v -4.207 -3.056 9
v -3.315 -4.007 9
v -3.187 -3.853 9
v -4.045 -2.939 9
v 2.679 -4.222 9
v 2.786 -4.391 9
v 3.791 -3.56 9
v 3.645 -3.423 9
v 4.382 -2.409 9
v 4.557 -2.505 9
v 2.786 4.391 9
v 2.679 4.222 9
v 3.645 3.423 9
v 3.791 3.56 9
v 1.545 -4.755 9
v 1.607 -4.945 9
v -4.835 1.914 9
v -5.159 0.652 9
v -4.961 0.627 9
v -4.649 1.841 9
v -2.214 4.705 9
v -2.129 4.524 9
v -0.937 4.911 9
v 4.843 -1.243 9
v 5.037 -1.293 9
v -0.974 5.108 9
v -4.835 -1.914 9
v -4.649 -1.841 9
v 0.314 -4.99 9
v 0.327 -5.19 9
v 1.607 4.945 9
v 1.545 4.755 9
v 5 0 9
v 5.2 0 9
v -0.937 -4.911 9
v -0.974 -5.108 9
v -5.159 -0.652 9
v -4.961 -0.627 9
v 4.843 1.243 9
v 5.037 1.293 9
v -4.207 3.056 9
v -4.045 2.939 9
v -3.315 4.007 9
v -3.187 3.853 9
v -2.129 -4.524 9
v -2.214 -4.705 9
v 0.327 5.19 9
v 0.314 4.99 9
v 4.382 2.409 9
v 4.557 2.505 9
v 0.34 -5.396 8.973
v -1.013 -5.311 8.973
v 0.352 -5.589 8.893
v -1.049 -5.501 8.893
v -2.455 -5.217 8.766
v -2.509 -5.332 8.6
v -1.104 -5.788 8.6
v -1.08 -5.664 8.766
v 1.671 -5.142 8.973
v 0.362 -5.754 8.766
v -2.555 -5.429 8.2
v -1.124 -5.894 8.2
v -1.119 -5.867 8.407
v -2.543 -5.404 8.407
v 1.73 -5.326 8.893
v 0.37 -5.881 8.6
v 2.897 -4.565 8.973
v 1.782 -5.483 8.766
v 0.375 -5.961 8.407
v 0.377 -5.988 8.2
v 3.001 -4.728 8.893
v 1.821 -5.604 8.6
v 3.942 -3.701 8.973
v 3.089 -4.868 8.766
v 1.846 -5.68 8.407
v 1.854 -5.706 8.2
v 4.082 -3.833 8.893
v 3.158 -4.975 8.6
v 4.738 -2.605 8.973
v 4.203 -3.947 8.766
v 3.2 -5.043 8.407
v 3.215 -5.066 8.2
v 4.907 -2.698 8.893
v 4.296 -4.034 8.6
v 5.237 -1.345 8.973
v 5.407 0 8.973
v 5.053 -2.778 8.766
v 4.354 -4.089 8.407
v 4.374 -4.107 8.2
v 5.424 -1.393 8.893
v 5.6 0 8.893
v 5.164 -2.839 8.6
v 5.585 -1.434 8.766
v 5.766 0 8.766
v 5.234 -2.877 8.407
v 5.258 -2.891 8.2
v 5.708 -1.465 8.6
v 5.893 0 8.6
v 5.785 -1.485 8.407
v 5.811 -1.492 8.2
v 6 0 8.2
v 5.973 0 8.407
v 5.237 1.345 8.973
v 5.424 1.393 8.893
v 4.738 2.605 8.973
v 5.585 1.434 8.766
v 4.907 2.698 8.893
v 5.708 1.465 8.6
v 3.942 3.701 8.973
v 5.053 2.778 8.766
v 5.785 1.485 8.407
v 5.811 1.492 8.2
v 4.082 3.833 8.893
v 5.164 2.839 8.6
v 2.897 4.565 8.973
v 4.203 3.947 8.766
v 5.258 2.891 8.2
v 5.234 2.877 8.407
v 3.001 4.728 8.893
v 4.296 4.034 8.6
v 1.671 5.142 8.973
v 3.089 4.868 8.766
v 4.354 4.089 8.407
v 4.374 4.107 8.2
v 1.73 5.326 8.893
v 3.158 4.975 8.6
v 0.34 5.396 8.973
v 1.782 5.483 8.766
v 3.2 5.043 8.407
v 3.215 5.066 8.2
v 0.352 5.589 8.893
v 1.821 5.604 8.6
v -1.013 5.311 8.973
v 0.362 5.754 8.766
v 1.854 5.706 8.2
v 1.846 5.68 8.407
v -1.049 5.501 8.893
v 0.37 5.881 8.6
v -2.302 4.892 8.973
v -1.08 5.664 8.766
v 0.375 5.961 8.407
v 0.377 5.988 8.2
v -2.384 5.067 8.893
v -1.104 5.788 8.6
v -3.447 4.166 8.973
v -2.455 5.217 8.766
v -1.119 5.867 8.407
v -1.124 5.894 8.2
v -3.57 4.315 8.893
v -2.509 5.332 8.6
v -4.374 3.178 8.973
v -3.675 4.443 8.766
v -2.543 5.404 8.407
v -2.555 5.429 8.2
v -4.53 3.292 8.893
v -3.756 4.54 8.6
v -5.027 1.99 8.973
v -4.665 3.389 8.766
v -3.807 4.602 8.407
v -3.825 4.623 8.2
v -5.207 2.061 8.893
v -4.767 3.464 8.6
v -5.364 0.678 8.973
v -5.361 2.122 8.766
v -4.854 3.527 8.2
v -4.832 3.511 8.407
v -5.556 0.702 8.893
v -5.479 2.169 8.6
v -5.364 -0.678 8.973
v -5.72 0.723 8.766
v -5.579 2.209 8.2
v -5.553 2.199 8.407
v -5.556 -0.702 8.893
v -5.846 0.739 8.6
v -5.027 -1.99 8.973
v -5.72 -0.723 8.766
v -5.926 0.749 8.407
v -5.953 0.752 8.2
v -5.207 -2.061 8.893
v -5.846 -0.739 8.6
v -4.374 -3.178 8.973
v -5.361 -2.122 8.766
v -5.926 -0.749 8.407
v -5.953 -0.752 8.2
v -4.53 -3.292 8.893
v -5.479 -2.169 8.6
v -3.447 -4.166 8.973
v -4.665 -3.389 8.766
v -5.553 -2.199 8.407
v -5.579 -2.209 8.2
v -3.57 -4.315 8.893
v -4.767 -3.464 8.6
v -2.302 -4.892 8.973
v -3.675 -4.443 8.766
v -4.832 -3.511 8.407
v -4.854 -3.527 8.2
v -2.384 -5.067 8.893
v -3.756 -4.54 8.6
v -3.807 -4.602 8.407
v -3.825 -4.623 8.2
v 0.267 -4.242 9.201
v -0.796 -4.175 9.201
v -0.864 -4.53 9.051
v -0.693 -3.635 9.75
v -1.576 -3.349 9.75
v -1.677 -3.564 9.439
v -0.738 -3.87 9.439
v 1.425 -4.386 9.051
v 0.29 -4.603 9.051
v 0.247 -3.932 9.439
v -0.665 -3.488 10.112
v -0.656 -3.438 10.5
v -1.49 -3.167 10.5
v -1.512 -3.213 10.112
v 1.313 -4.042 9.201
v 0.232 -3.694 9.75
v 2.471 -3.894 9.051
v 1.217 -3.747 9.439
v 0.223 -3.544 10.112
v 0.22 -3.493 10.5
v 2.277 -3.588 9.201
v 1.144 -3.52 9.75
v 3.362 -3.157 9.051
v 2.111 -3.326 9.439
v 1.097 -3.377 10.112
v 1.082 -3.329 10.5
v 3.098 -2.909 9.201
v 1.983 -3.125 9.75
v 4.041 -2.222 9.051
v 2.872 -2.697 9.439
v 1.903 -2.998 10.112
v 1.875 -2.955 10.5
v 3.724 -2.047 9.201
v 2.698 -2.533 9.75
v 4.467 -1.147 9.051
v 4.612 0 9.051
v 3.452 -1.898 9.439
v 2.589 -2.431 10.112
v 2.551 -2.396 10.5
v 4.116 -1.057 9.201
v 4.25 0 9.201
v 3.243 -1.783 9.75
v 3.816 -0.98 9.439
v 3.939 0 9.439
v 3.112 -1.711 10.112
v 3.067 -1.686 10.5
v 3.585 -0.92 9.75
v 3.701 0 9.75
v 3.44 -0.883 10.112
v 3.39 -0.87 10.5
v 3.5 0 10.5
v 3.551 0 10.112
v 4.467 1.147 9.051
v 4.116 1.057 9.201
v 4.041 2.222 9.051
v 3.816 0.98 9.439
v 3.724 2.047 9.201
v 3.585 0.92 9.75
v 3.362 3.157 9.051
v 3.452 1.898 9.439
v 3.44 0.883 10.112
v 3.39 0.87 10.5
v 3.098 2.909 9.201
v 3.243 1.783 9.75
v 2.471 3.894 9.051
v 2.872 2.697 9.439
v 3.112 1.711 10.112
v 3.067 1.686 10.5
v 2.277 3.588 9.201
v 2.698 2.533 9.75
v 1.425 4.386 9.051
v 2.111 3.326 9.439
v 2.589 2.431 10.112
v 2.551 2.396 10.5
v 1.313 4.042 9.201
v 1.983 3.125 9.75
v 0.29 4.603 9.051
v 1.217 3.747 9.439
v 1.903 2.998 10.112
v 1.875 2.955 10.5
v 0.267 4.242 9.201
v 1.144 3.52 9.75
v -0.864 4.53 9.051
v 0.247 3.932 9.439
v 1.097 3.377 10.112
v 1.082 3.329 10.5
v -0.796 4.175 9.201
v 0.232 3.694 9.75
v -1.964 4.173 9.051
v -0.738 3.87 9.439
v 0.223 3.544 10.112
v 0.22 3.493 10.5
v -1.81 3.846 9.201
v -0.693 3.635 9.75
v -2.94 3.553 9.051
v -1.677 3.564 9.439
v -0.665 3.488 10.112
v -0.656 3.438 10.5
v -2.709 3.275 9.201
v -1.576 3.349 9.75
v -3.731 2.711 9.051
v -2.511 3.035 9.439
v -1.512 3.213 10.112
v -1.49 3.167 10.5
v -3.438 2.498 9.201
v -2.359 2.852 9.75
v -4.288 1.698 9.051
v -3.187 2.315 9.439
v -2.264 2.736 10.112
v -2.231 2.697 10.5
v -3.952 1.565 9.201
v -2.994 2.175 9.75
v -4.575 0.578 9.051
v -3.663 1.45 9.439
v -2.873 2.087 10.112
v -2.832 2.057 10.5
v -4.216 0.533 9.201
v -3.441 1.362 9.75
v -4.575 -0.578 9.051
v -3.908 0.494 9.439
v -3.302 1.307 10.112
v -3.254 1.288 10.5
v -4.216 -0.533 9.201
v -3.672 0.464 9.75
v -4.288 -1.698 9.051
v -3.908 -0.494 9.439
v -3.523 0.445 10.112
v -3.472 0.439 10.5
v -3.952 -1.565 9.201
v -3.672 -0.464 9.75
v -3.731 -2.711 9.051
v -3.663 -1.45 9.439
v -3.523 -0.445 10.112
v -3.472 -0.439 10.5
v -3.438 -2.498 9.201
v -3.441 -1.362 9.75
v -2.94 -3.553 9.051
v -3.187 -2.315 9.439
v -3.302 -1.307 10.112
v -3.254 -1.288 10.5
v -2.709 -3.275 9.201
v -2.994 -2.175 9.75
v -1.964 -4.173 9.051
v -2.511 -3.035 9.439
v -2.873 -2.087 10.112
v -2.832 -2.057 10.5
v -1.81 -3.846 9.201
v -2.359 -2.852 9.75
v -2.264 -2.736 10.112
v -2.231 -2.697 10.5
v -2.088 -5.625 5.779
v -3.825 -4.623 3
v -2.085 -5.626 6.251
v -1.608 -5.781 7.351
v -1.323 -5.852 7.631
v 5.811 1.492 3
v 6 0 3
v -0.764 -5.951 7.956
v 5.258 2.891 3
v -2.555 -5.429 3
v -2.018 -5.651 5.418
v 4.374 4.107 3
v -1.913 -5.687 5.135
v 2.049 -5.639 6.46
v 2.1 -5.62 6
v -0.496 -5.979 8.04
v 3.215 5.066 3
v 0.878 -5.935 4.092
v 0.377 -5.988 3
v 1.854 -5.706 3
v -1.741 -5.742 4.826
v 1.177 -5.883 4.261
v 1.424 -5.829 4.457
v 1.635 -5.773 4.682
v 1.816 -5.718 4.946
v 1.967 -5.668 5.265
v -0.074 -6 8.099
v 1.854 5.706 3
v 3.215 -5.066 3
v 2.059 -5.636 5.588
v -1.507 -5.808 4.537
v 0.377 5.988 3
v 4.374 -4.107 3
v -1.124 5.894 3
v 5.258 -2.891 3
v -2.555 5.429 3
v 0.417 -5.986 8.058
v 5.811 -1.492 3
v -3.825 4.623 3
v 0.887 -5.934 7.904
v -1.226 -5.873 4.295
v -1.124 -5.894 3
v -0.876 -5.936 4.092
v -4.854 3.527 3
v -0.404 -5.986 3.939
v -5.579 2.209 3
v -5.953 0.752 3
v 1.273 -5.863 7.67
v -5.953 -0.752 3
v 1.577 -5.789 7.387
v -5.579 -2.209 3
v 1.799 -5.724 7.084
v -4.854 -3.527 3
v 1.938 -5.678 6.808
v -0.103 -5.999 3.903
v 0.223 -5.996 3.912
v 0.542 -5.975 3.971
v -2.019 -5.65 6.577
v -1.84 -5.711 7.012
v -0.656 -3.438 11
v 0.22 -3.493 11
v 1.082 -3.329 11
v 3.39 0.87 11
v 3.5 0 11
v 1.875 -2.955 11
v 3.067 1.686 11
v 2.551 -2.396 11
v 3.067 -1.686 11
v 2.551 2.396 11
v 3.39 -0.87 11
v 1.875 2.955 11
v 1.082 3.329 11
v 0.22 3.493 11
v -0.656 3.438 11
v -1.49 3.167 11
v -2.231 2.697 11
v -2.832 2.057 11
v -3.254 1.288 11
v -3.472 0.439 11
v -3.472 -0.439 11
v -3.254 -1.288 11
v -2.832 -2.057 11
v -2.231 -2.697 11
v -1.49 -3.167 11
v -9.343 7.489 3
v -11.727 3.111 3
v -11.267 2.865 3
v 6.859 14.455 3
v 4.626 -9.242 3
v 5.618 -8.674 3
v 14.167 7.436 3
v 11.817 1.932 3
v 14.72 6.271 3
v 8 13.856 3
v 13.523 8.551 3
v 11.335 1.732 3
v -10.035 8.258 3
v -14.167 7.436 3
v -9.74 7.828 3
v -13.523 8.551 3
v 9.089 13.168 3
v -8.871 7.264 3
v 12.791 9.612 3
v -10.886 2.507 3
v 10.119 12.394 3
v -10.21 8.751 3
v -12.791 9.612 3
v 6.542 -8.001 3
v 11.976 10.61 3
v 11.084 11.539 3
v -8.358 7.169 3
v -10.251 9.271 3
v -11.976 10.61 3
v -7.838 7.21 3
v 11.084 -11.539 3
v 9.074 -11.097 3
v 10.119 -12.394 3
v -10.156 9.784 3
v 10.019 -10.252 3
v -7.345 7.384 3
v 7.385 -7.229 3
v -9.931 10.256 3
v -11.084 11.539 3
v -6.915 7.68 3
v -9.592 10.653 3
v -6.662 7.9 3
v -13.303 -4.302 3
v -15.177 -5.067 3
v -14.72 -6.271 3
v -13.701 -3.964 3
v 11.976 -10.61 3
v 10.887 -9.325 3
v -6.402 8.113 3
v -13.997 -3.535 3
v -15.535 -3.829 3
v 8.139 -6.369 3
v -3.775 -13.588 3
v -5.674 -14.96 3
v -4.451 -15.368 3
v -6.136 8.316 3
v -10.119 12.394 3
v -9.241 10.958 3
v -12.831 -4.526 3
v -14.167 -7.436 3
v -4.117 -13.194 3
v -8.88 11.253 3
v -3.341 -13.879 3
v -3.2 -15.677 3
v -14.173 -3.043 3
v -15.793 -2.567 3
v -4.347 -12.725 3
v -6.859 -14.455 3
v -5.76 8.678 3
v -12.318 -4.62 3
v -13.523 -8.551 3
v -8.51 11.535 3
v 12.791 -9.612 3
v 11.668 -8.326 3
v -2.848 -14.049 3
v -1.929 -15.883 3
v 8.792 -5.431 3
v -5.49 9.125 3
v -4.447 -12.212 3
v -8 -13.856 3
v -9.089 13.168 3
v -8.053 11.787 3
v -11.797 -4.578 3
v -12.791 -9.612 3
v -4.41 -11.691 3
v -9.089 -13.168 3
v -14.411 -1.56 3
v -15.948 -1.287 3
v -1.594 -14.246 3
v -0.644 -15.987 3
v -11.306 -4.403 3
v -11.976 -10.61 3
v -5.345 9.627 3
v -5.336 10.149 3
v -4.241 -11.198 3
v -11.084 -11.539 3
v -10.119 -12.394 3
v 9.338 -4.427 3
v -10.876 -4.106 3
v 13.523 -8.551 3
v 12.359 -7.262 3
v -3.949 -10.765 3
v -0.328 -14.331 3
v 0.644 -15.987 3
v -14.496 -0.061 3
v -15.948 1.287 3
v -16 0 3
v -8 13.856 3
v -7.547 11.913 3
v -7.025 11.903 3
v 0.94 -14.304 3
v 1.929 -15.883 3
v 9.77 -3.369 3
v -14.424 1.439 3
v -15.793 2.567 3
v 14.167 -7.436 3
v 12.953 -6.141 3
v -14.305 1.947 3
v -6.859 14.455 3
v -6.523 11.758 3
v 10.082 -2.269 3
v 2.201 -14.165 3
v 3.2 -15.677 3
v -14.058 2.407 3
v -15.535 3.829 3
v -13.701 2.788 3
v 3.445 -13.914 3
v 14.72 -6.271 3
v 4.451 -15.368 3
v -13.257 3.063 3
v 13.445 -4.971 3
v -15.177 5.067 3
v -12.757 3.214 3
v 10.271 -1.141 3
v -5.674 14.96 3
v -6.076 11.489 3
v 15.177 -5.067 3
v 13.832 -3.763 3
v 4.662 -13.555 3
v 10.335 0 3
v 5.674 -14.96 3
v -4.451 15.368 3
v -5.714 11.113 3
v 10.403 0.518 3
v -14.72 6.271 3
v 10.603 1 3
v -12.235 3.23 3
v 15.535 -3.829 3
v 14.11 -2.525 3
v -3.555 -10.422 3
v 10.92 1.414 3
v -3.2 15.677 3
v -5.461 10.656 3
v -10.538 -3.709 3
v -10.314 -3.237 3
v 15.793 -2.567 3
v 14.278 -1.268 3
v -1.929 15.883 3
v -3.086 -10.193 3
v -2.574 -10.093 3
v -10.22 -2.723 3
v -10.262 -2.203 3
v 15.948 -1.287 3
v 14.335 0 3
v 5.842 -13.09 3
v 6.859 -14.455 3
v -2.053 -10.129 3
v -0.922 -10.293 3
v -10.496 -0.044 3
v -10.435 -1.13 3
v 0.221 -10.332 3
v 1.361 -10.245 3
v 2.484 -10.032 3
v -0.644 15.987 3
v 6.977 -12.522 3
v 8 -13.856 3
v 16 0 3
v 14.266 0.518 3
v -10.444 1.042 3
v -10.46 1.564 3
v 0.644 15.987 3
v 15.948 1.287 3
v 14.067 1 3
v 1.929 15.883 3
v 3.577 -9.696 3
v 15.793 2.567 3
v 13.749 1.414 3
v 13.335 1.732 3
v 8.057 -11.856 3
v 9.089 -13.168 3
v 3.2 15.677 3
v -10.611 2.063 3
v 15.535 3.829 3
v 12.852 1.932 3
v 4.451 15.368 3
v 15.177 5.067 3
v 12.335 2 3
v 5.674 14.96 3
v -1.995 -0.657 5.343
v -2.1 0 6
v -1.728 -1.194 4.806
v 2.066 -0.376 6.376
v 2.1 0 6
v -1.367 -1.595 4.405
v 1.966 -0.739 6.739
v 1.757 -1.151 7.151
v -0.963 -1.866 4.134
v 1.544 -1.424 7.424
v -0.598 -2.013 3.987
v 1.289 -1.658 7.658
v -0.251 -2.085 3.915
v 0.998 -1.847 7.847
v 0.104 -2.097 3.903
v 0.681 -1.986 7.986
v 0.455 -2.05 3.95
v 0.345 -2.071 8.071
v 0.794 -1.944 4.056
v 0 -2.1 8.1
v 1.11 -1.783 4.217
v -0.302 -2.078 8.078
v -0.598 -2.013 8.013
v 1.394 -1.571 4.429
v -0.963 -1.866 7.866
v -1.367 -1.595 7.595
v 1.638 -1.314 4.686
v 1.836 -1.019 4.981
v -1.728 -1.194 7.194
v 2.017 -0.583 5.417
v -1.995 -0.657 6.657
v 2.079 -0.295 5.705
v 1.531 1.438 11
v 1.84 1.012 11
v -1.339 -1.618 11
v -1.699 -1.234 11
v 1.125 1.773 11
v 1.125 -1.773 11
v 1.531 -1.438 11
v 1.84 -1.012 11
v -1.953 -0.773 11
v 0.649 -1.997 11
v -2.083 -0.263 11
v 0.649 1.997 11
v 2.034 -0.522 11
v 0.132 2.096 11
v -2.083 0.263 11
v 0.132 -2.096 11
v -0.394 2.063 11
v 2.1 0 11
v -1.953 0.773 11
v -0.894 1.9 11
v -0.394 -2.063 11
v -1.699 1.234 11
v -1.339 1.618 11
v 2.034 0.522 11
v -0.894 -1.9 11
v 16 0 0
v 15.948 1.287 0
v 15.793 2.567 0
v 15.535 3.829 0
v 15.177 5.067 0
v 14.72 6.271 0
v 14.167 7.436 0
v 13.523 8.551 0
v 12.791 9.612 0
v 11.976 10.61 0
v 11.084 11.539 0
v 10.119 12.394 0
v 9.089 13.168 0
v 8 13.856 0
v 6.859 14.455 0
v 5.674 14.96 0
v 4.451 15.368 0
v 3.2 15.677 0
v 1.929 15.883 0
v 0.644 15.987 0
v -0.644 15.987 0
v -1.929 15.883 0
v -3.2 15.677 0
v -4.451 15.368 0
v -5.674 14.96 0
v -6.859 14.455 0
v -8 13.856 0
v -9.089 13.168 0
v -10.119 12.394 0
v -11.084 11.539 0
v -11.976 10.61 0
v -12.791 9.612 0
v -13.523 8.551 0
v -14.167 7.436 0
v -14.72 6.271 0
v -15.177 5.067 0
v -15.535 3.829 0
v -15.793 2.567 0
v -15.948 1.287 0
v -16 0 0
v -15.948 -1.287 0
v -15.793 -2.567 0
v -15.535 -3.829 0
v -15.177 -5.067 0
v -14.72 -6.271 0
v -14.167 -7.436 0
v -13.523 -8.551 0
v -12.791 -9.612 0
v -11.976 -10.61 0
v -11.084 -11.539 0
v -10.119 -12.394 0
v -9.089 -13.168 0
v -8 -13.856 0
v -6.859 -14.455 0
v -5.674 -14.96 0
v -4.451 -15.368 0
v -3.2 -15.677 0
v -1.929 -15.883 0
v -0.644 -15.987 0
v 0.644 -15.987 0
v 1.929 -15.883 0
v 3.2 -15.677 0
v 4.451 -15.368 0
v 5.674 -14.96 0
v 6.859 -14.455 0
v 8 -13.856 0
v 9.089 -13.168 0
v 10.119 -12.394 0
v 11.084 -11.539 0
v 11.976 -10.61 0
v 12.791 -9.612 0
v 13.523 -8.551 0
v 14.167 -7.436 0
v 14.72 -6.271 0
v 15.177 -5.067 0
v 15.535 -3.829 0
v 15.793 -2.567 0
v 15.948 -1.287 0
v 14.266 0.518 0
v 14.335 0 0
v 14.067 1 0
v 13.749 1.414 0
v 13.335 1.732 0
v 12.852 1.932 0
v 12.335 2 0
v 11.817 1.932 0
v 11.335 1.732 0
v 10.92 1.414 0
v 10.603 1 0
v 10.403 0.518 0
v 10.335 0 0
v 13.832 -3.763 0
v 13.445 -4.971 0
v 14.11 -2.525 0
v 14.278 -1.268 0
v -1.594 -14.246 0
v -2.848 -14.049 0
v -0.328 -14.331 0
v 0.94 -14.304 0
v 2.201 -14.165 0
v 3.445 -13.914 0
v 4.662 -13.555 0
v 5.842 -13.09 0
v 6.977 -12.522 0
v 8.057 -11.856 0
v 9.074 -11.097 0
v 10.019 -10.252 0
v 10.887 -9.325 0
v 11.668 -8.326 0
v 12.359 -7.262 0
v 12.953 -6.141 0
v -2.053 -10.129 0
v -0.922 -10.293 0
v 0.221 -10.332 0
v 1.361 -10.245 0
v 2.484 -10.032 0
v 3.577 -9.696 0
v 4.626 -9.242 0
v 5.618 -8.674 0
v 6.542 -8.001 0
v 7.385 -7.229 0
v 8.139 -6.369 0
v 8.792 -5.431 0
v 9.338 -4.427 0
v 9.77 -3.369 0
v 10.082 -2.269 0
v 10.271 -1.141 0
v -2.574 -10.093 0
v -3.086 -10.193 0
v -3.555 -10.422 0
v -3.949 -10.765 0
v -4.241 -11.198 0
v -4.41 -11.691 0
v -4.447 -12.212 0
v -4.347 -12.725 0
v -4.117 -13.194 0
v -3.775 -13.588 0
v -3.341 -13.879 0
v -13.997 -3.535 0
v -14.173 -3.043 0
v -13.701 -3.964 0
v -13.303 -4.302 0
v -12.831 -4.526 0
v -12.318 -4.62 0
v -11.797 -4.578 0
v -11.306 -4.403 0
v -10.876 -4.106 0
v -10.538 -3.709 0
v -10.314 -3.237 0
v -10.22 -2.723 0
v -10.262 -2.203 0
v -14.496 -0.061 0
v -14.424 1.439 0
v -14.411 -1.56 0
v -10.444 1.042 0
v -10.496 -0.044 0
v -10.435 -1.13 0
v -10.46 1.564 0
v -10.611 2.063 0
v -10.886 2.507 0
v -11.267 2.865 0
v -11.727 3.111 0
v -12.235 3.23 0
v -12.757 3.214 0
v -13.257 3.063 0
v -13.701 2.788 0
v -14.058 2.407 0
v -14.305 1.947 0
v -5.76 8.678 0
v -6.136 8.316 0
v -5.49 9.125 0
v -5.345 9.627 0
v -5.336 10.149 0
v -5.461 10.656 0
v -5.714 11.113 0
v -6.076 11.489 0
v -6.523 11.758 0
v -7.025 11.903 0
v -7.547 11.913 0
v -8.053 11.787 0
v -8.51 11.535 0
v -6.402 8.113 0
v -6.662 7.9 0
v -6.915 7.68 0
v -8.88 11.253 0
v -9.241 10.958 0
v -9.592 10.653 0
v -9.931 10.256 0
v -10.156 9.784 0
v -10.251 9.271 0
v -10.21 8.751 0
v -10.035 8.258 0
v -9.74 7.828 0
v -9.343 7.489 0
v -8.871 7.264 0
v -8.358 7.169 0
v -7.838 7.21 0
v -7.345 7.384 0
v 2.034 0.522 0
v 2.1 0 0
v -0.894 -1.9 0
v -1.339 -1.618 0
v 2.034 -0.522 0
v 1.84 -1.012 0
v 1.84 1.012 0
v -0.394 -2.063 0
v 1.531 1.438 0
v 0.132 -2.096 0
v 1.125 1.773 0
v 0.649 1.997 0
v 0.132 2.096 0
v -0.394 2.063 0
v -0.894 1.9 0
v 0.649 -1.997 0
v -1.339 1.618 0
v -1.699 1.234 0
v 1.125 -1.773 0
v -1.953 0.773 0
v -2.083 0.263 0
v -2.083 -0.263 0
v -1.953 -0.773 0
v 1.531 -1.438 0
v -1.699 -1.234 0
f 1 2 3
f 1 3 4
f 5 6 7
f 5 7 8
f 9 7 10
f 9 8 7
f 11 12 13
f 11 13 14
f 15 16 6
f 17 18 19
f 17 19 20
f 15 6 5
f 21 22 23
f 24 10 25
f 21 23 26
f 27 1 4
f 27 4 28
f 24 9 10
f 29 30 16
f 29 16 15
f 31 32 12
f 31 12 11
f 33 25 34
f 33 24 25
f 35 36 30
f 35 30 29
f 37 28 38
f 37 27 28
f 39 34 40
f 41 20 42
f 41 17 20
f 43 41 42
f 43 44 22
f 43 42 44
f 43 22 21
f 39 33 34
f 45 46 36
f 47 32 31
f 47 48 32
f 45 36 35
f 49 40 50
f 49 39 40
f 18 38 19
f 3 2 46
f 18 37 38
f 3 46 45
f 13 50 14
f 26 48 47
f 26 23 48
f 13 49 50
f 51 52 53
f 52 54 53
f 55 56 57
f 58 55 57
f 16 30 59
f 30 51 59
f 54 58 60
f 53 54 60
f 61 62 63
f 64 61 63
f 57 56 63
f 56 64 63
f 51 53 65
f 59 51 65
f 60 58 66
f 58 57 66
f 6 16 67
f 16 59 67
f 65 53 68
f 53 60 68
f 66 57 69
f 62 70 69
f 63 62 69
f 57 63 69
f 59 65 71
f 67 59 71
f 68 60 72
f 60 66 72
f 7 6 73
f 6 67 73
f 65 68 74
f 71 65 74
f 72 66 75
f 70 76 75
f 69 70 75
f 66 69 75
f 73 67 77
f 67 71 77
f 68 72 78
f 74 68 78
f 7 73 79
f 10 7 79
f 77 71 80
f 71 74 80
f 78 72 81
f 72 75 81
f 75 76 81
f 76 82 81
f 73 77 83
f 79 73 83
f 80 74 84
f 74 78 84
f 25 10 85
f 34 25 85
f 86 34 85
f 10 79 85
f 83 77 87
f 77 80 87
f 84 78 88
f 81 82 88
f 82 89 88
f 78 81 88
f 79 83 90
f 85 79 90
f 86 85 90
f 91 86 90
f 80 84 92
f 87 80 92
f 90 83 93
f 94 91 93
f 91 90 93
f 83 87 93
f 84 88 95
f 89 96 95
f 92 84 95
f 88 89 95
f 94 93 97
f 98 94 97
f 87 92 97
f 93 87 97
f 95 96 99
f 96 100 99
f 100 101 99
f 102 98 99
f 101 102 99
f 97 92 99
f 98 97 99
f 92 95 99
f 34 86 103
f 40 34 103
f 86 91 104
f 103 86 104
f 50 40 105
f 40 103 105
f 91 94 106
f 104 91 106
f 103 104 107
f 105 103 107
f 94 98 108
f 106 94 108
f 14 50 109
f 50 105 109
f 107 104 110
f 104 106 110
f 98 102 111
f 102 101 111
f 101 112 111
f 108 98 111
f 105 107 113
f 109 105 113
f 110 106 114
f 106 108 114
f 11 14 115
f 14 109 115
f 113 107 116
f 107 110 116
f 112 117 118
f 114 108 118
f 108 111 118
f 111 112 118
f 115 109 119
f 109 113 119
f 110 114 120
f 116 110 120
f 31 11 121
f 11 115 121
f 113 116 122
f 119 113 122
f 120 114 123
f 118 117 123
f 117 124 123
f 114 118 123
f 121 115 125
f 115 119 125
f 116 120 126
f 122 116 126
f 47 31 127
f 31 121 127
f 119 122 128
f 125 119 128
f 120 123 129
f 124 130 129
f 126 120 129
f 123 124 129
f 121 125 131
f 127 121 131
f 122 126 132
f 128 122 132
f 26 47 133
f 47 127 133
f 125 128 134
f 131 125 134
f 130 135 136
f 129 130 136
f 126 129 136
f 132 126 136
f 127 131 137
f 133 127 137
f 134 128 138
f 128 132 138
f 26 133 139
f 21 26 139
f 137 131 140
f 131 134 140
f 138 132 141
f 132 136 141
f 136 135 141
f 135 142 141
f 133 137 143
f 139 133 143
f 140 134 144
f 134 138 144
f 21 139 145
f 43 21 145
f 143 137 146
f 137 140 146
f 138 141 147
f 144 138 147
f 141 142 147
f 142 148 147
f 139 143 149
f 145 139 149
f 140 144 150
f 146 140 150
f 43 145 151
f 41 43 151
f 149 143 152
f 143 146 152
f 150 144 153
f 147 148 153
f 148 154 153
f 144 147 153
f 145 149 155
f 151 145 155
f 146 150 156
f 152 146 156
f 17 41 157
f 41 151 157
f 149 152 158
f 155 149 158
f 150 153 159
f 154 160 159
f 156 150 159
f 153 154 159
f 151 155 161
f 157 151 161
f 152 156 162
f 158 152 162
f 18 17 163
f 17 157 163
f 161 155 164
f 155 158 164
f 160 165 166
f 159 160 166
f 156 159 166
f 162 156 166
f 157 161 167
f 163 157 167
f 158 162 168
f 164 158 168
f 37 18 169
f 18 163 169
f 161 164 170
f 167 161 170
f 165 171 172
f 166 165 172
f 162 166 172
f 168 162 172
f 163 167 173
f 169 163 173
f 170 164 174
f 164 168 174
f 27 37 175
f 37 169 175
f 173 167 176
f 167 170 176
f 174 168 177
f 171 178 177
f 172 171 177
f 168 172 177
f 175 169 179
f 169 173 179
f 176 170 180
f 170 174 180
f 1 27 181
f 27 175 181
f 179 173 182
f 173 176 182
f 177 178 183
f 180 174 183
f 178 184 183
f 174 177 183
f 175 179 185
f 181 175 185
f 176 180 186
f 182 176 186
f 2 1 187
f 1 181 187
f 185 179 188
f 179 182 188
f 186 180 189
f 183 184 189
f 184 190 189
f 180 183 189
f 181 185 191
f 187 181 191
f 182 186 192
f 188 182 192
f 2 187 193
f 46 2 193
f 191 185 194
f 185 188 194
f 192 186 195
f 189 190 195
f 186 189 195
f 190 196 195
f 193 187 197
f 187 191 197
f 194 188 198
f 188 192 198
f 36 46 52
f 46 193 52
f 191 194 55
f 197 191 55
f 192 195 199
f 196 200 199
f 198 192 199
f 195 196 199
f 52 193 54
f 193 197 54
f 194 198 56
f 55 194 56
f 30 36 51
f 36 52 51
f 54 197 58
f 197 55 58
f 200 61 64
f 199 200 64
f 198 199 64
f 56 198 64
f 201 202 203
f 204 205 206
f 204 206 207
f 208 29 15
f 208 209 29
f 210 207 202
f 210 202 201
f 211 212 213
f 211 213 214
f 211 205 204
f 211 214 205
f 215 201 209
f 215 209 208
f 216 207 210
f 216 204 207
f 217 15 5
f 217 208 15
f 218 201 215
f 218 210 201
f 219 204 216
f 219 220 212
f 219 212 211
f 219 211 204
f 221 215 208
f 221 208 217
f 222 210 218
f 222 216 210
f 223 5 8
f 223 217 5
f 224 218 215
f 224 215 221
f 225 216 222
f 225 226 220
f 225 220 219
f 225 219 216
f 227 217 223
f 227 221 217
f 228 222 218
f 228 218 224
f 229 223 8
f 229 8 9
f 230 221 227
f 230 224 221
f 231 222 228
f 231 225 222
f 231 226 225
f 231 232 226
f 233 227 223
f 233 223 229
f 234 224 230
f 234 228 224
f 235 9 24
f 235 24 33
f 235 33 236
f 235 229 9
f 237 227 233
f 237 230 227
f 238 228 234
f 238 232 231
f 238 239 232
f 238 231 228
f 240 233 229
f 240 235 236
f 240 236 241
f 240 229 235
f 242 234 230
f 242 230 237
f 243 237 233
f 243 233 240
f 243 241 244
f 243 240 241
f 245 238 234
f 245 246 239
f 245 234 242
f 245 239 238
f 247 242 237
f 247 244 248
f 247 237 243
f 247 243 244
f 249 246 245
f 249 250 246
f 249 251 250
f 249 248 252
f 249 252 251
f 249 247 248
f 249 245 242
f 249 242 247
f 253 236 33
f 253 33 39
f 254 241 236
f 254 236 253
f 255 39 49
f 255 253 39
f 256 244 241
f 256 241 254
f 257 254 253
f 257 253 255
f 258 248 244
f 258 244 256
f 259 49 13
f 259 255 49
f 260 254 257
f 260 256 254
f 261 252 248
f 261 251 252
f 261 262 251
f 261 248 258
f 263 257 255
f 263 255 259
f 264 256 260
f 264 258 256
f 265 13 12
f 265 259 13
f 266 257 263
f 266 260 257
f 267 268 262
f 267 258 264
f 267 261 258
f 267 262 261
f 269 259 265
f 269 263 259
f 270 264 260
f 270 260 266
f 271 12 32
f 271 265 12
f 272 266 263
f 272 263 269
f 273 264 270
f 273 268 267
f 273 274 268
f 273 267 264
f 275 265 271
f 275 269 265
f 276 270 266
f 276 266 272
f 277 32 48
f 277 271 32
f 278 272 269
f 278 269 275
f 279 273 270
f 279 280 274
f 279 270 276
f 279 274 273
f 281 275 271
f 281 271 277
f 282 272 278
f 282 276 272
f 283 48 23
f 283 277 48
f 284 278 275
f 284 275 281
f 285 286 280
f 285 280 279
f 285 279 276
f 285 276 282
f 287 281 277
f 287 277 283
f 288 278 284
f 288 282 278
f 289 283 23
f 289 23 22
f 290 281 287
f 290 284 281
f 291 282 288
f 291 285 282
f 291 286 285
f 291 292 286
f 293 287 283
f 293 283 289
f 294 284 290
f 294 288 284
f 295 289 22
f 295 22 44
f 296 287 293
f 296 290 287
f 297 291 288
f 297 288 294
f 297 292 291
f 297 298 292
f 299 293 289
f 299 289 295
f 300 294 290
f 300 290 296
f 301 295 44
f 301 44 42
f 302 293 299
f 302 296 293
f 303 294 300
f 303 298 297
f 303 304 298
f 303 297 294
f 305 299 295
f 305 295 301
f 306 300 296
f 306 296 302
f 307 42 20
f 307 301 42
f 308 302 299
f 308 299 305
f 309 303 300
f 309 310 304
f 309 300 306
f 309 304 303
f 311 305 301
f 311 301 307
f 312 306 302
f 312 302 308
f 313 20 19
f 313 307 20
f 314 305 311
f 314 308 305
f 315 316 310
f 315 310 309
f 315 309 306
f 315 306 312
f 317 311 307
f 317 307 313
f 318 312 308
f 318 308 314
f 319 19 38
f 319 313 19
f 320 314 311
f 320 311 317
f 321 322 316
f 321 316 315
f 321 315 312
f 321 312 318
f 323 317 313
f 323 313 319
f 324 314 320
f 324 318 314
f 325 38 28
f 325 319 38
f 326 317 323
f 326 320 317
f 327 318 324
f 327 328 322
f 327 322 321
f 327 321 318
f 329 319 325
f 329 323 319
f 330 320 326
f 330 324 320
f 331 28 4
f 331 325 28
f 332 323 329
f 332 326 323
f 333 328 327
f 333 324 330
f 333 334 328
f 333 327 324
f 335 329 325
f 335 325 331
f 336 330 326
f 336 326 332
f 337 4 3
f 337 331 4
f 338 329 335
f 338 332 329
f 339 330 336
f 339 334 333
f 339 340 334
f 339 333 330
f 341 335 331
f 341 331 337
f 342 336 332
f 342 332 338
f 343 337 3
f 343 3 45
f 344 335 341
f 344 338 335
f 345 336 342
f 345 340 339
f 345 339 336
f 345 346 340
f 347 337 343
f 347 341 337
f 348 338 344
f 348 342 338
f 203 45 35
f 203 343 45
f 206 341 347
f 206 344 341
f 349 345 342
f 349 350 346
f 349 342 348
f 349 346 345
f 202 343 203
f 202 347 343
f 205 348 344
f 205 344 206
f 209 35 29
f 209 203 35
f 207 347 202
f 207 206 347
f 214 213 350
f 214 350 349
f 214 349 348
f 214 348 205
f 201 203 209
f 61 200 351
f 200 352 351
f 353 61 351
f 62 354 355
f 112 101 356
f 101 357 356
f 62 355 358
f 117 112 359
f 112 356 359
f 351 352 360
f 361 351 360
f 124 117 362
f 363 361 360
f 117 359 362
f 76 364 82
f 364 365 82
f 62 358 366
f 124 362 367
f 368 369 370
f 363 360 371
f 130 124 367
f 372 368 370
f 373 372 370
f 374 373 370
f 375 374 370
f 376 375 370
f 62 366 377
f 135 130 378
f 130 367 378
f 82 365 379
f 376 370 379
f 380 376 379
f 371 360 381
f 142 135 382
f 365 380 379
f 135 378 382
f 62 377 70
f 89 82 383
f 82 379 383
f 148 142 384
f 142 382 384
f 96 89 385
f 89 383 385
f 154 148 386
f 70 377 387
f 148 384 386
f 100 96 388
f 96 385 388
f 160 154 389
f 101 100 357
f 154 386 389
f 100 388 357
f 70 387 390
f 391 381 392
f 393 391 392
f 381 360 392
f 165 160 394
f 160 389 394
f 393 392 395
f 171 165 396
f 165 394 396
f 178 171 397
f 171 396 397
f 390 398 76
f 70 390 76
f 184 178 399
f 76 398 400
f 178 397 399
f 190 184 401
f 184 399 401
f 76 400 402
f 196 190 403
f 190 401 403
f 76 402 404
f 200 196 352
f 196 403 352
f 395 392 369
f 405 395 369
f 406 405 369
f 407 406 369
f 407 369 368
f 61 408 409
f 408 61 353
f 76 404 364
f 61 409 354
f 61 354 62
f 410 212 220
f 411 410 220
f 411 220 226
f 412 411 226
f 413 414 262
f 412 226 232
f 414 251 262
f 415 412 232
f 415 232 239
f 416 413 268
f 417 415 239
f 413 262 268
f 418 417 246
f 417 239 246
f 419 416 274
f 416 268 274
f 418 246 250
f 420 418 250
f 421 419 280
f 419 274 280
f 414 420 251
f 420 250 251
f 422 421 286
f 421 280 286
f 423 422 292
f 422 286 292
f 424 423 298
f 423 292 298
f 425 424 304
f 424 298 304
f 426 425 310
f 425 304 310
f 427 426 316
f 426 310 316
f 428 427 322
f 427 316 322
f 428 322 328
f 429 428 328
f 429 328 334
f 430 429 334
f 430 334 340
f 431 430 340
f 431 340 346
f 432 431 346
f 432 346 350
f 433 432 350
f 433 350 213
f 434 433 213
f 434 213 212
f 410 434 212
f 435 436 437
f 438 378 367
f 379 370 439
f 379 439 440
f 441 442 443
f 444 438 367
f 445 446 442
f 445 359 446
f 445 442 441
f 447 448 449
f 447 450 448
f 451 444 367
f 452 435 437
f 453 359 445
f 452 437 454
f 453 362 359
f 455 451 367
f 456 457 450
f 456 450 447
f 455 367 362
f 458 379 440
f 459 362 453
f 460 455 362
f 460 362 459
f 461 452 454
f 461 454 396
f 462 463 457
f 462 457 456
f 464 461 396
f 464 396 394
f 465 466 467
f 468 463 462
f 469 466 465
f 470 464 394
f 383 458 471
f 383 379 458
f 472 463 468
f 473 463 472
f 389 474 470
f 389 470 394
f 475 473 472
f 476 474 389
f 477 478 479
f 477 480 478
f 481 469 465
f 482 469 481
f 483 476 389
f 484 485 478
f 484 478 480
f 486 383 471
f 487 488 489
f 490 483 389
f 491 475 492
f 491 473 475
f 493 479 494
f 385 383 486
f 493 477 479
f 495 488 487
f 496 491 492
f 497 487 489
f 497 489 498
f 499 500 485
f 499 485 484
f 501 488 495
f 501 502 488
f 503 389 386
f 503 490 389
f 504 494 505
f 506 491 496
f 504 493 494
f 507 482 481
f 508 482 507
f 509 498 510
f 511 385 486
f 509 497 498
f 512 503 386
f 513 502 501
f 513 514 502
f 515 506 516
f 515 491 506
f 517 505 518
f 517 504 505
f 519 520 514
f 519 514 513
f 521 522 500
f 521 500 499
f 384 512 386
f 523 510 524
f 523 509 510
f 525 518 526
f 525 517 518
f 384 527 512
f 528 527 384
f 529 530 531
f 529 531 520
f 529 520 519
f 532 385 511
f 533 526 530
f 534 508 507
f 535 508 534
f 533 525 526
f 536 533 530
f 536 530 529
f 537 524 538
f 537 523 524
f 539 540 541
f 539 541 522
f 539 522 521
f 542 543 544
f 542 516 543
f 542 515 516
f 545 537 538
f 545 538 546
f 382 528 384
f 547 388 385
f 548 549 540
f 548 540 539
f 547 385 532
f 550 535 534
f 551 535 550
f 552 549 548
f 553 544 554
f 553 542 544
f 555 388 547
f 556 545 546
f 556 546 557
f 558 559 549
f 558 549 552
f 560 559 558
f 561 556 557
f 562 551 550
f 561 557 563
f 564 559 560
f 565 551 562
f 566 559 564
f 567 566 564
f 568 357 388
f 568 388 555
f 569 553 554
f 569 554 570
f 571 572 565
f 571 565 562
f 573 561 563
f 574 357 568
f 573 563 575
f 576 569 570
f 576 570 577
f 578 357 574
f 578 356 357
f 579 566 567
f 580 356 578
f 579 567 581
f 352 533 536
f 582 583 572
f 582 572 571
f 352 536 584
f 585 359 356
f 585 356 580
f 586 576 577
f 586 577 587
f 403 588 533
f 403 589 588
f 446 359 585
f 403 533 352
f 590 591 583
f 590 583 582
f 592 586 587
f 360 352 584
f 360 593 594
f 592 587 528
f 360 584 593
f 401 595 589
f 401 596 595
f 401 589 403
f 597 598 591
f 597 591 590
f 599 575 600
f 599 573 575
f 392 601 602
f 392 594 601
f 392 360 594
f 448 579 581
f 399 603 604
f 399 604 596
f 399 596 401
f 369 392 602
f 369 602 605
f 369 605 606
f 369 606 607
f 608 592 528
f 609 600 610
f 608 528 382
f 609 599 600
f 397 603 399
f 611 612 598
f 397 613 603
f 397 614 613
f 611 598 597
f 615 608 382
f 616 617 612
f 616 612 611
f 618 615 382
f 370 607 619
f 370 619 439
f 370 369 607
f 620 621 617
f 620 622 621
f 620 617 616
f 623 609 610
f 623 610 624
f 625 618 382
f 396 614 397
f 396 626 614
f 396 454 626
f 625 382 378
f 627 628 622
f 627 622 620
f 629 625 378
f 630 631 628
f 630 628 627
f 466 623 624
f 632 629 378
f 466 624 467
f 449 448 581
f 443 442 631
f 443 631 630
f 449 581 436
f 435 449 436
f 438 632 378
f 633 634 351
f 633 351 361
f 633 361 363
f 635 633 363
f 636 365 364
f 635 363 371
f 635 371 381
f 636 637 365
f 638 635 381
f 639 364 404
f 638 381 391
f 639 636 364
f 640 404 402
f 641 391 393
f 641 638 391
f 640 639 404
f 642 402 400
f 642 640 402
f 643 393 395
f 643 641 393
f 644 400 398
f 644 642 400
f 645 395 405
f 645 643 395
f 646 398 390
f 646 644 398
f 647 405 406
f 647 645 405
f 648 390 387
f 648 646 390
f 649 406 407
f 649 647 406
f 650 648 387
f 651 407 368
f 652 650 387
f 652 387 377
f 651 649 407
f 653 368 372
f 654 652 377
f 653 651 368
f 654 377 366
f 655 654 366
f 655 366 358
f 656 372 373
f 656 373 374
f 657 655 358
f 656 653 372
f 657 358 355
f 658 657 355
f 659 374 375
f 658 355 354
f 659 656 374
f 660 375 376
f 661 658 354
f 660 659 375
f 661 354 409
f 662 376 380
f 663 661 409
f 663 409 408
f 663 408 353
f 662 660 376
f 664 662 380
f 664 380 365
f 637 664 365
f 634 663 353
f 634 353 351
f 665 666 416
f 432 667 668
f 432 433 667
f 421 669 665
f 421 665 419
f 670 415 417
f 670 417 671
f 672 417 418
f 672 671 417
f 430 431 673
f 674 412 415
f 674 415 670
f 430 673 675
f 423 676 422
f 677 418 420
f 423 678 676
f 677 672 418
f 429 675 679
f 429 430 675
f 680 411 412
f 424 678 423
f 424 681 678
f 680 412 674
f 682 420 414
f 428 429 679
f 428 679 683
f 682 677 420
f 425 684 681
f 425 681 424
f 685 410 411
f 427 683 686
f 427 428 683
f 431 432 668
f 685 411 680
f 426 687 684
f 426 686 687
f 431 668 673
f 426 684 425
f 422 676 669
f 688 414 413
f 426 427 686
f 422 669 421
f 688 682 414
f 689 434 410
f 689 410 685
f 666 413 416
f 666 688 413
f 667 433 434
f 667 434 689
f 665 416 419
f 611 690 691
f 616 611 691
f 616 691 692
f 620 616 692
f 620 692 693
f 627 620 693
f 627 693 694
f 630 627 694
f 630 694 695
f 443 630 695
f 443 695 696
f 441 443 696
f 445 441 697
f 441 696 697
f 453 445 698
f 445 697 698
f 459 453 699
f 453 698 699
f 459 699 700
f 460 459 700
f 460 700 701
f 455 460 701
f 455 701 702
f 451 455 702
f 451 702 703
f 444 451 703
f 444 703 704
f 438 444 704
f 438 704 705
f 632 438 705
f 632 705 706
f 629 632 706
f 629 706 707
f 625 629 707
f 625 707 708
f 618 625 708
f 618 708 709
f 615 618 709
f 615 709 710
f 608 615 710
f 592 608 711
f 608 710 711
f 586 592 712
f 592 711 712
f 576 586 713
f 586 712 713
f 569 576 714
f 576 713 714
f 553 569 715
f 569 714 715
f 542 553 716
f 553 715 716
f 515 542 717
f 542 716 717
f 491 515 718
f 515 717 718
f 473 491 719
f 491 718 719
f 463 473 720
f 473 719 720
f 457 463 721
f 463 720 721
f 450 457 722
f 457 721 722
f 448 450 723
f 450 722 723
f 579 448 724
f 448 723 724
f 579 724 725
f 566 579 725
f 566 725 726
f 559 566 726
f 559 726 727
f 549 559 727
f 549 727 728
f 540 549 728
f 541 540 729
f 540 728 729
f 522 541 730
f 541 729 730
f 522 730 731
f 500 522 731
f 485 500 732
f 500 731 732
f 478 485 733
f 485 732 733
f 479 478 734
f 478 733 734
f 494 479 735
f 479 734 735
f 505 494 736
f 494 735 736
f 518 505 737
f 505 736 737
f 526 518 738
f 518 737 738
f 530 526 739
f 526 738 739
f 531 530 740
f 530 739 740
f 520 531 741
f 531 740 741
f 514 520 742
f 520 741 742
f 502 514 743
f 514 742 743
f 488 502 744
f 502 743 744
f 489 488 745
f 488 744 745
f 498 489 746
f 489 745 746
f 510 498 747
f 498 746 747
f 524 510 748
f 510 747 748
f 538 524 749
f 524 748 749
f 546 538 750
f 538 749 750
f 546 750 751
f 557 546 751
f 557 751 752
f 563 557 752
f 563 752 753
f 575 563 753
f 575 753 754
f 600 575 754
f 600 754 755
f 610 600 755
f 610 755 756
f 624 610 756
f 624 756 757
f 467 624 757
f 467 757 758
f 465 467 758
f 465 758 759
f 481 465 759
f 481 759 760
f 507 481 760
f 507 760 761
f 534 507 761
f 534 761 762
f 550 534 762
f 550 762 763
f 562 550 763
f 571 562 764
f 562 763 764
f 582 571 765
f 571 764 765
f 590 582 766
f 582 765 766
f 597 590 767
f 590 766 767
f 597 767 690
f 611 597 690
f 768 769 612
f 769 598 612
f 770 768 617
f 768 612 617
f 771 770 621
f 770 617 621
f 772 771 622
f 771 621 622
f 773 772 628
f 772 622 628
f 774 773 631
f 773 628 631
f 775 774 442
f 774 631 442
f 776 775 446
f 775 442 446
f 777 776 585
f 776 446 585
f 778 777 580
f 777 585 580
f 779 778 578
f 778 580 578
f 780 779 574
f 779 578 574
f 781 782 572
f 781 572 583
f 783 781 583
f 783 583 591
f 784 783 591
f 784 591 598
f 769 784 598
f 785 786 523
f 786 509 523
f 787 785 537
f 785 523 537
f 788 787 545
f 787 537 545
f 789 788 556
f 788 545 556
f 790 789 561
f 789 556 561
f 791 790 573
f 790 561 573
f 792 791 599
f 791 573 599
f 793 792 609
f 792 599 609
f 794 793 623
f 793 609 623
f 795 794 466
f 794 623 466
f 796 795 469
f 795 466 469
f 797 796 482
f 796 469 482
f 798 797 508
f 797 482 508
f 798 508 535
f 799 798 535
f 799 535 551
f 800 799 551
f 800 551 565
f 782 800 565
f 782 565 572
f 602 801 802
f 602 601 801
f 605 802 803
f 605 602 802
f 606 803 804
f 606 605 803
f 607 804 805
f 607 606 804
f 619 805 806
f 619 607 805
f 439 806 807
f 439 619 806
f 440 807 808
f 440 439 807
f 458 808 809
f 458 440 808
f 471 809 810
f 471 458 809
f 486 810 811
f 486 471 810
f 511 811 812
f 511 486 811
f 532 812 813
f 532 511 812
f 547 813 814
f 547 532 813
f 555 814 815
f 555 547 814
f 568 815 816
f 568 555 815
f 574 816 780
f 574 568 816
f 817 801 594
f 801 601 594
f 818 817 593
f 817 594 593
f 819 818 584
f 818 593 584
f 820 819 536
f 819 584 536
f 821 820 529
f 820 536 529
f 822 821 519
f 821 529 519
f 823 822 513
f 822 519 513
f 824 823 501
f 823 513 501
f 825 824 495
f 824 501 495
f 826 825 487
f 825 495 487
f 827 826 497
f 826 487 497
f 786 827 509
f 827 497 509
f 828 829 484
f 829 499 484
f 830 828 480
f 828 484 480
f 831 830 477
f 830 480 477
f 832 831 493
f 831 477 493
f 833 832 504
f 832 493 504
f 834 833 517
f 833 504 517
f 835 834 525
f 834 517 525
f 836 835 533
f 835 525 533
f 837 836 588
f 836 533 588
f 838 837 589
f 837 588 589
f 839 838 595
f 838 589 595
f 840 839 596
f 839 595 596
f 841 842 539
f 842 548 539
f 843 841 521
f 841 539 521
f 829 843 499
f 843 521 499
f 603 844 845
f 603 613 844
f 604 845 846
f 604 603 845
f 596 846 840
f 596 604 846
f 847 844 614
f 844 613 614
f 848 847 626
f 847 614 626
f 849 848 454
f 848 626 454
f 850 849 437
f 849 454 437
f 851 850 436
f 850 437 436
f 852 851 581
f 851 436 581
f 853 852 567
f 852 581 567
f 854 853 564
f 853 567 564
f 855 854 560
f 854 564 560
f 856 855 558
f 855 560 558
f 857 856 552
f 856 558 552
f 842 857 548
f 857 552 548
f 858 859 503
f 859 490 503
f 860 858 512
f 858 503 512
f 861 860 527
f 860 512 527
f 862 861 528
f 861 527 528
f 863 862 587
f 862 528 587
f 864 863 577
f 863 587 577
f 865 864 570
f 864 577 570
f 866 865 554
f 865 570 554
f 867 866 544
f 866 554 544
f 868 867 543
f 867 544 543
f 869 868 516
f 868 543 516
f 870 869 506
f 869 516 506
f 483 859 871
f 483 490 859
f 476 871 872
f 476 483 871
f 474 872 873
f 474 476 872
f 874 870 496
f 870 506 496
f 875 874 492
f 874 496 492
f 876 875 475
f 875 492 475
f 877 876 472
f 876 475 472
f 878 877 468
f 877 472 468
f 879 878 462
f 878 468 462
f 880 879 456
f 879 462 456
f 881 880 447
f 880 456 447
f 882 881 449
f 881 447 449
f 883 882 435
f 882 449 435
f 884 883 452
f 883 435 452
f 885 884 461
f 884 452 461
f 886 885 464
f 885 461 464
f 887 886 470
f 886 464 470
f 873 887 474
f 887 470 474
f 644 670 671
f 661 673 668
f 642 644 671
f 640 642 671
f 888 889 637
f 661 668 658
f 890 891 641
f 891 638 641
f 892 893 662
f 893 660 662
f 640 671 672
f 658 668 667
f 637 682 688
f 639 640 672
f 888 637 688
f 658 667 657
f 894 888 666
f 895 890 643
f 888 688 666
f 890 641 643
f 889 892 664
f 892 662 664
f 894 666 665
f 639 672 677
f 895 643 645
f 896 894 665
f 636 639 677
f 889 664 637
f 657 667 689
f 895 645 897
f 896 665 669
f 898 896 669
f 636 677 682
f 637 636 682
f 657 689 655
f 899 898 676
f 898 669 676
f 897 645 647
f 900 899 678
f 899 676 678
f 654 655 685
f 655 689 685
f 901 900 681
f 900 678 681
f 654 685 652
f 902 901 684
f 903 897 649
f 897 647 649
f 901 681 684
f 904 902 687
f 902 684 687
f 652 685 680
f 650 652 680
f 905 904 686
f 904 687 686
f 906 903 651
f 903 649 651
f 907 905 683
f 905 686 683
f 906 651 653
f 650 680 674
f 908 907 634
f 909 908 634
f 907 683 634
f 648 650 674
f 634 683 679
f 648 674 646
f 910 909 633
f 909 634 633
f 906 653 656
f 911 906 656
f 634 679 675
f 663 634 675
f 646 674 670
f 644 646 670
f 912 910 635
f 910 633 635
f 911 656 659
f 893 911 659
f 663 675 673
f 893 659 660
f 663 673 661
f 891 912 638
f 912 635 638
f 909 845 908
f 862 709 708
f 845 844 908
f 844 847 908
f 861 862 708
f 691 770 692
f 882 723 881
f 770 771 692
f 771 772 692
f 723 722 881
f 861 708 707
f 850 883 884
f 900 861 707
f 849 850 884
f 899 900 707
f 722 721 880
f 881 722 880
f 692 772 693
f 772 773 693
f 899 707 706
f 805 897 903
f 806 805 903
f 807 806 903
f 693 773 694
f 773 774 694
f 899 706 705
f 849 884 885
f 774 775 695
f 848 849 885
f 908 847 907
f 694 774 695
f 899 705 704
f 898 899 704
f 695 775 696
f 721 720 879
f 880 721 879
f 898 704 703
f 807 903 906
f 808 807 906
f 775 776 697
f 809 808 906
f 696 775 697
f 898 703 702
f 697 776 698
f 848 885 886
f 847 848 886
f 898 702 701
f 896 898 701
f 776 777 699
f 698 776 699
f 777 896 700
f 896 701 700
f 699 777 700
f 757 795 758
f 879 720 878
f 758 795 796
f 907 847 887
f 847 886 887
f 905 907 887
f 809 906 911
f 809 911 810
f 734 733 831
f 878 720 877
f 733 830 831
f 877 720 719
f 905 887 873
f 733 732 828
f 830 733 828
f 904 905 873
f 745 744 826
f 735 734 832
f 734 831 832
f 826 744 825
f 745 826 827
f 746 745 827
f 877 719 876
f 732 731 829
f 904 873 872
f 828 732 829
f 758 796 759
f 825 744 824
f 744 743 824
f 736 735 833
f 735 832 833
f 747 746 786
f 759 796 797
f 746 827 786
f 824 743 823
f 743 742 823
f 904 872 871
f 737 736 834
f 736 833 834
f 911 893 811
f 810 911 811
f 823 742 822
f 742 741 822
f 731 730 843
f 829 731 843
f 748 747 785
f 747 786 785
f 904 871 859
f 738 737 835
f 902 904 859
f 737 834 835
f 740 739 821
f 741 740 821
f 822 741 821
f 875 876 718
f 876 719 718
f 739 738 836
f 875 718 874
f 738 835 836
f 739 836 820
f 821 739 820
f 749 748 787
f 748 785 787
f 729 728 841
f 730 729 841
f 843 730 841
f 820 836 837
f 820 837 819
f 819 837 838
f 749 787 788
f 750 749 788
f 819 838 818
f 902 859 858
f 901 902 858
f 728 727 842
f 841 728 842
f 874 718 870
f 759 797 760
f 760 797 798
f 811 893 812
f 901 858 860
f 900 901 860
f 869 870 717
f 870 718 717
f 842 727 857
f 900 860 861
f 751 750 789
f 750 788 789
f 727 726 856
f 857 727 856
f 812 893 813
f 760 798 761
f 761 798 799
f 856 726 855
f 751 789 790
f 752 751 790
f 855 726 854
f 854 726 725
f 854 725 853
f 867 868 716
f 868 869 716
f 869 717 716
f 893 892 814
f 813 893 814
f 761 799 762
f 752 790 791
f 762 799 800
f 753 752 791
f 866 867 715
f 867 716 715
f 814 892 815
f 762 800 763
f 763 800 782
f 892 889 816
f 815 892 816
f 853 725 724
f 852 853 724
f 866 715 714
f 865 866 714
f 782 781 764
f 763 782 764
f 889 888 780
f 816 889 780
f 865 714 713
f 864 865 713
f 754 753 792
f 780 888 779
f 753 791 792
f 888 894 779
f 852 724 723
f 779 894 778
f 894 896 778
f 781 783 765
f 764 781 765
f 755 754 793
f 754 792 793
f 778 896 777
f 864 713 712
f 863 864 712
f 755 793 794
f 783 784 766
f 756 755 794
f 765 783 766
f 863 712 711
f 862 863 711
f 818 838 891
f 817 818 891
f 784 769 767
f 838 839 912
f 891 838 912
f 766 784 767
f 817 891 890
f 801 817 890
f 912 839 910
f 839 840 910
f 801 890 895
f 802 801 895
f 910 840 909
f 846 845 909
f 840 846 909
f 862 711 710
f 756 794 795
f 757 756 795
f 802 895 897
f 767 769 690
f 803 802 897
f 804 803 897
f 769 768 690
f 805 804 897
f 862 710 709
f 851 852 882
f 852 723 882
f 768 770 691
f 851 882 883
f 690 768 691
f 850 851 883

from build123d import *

# Parameters (mm, degrees)
SKETCH007_R     = 2.1
PAD003_DEPTH    = 10
SKETCH_R        = 16
PAD_DEPTH       = 3
POCKET_DEPTH    = 3.001
POCKET001_DEPTH = 3
POCKET002_DEPTH = 3
SKETCH004_R     = 6
PAD001_DEPTH    = 6
SKETCH005_R     = 3.5
PAD002_DEPTH    = 2
SKETCH006_R     = 2.1
POCKET003_DEPTH = 11.001
FILLET_R        = 1.5
FILLET001_R     = 0.8


with BuildPart() as pad003:
    # Sketch007 → Pad003 (new body)
    with BuildSketch(Plane.XZ):
        with Locations((0, 6)):
            Circle(SKETCH007_R)
    extrude(amount=PAD003_DEPTH)


with BuildPart() as cut:
    # Sketch → Pad (new body)
    with BuildSketch(Plane.XY):
        Circle(SKETCH_R)
    extrude(amount=PAD_DEPTH)

    # Sketch001 → Pocket (cut, through all)
    with BuildSketch(Plane.XY.offset(3)):
        with BuildLine():
            ThreePointArc((-2.847664, -14.048884), (9.073595, -11.097307), (14.334585, 0))
            ThreePointArc((14.334585, 0), (12.334585, 2), (10.334585, 0))
            ThreePointArc((-2.053037, -10.128608), (6.54165, -8.000654), (10.334585, 0))
            ThreePointArc((-2.053037, -10.128608), (-4.410489, -11.691432), (-2.847664, -14.048884))
        make_face()
    extrude(amount=-POCKET_DEPTH, mode=Mode.SUBTRACT)

    # Sketch002 → Pocket001 (cut)
    with BuildSketch(Plane.XY.offset(3)):
        with BuildLine():
            ThreePointArc((-10.443847, 1.041795), (-10.47921, -0.587733), (-10.261856, -2.203087))
            ThreePointArc((-14.172744, -3.042704), (-11.797491, -4.57834), (-10.261856, -2.203087))
            ThreePointArc((-14.424094, 1.438832), (-14.472934, -0.811724), (-14.172744, -3.042704))
            ThreePointArc((-10.443847, 1.041795), (-12.235452, 3.230437), (-14.424094, 1.438832))
        make_face()
    extrude(amount=-POCKET001_DEPTH, mode=Mode.SUBTRACT)

    # Sketch003 → Pocket002 (cut)
    with BuildSketch(Plane.XY.offset(3)):
        with BuildLine():
            ThreePointArc((-8.510484, 11.534817), (-9.061837, 11.106909), (-9.59171, 10.652673))
            ThreePointArc((-9.59171, 10.652673), (-9.739738, 7.828122), (-6.915187, 7.680094))
            ThreePointArc((-6.135673, 8.316079), (-6.533173, 8.007578), (-6.915187, 7.680094))
            ThreePointArc((-6.135673, 8.316079), (-5.71371, 11.112854), (-8.510484, 11.534817))
        make_face()
    extrude(amount=-POCKET002_DEPTH, mode=Mode.SUBTRACT)

    # Sketch004 → Pad001 (new body)
    with BuildSketch(Plane.XY.offset(3)):
        Circle(SKETCH004_R)
    extrude(amount=PAD001_DEPTH)

    # Sketch005 → Pad002 (new body)
    with BuildSketch(Plane.XY.offset(9)):
        Circle(SKETCH005_R)
    extrude(amount=PAD002_DEPTH)

    # Sketch006 → Pocket003 (cut, through all)
    with BuildSketch(Plane.XY.offset(11)):
        Circle(SKETCH006_R)
    extrude(amount=-POCKET003_DEPTH, mode=Mode.SUBTRACT)

    # Fillet
    fillet_edges = [cut.edges().sort_by_distance(p)[0] for p in [
        (-3.5, 0, 9),
    ]]
    fillet(fillet_edges, radius=FILLET_R)

    # Fillet001
    fillet001_edges = [cut.edges().sort_by_distance(p)[0] for p in [
        (-6, 0, 9),
    ]]
    fillet(fillet001_edges, radius=FILLET001_R)

    # Cut: cut Pad003
    add(pad003.part, mode=Mode.SUBTRACT)


solid = cut.part
